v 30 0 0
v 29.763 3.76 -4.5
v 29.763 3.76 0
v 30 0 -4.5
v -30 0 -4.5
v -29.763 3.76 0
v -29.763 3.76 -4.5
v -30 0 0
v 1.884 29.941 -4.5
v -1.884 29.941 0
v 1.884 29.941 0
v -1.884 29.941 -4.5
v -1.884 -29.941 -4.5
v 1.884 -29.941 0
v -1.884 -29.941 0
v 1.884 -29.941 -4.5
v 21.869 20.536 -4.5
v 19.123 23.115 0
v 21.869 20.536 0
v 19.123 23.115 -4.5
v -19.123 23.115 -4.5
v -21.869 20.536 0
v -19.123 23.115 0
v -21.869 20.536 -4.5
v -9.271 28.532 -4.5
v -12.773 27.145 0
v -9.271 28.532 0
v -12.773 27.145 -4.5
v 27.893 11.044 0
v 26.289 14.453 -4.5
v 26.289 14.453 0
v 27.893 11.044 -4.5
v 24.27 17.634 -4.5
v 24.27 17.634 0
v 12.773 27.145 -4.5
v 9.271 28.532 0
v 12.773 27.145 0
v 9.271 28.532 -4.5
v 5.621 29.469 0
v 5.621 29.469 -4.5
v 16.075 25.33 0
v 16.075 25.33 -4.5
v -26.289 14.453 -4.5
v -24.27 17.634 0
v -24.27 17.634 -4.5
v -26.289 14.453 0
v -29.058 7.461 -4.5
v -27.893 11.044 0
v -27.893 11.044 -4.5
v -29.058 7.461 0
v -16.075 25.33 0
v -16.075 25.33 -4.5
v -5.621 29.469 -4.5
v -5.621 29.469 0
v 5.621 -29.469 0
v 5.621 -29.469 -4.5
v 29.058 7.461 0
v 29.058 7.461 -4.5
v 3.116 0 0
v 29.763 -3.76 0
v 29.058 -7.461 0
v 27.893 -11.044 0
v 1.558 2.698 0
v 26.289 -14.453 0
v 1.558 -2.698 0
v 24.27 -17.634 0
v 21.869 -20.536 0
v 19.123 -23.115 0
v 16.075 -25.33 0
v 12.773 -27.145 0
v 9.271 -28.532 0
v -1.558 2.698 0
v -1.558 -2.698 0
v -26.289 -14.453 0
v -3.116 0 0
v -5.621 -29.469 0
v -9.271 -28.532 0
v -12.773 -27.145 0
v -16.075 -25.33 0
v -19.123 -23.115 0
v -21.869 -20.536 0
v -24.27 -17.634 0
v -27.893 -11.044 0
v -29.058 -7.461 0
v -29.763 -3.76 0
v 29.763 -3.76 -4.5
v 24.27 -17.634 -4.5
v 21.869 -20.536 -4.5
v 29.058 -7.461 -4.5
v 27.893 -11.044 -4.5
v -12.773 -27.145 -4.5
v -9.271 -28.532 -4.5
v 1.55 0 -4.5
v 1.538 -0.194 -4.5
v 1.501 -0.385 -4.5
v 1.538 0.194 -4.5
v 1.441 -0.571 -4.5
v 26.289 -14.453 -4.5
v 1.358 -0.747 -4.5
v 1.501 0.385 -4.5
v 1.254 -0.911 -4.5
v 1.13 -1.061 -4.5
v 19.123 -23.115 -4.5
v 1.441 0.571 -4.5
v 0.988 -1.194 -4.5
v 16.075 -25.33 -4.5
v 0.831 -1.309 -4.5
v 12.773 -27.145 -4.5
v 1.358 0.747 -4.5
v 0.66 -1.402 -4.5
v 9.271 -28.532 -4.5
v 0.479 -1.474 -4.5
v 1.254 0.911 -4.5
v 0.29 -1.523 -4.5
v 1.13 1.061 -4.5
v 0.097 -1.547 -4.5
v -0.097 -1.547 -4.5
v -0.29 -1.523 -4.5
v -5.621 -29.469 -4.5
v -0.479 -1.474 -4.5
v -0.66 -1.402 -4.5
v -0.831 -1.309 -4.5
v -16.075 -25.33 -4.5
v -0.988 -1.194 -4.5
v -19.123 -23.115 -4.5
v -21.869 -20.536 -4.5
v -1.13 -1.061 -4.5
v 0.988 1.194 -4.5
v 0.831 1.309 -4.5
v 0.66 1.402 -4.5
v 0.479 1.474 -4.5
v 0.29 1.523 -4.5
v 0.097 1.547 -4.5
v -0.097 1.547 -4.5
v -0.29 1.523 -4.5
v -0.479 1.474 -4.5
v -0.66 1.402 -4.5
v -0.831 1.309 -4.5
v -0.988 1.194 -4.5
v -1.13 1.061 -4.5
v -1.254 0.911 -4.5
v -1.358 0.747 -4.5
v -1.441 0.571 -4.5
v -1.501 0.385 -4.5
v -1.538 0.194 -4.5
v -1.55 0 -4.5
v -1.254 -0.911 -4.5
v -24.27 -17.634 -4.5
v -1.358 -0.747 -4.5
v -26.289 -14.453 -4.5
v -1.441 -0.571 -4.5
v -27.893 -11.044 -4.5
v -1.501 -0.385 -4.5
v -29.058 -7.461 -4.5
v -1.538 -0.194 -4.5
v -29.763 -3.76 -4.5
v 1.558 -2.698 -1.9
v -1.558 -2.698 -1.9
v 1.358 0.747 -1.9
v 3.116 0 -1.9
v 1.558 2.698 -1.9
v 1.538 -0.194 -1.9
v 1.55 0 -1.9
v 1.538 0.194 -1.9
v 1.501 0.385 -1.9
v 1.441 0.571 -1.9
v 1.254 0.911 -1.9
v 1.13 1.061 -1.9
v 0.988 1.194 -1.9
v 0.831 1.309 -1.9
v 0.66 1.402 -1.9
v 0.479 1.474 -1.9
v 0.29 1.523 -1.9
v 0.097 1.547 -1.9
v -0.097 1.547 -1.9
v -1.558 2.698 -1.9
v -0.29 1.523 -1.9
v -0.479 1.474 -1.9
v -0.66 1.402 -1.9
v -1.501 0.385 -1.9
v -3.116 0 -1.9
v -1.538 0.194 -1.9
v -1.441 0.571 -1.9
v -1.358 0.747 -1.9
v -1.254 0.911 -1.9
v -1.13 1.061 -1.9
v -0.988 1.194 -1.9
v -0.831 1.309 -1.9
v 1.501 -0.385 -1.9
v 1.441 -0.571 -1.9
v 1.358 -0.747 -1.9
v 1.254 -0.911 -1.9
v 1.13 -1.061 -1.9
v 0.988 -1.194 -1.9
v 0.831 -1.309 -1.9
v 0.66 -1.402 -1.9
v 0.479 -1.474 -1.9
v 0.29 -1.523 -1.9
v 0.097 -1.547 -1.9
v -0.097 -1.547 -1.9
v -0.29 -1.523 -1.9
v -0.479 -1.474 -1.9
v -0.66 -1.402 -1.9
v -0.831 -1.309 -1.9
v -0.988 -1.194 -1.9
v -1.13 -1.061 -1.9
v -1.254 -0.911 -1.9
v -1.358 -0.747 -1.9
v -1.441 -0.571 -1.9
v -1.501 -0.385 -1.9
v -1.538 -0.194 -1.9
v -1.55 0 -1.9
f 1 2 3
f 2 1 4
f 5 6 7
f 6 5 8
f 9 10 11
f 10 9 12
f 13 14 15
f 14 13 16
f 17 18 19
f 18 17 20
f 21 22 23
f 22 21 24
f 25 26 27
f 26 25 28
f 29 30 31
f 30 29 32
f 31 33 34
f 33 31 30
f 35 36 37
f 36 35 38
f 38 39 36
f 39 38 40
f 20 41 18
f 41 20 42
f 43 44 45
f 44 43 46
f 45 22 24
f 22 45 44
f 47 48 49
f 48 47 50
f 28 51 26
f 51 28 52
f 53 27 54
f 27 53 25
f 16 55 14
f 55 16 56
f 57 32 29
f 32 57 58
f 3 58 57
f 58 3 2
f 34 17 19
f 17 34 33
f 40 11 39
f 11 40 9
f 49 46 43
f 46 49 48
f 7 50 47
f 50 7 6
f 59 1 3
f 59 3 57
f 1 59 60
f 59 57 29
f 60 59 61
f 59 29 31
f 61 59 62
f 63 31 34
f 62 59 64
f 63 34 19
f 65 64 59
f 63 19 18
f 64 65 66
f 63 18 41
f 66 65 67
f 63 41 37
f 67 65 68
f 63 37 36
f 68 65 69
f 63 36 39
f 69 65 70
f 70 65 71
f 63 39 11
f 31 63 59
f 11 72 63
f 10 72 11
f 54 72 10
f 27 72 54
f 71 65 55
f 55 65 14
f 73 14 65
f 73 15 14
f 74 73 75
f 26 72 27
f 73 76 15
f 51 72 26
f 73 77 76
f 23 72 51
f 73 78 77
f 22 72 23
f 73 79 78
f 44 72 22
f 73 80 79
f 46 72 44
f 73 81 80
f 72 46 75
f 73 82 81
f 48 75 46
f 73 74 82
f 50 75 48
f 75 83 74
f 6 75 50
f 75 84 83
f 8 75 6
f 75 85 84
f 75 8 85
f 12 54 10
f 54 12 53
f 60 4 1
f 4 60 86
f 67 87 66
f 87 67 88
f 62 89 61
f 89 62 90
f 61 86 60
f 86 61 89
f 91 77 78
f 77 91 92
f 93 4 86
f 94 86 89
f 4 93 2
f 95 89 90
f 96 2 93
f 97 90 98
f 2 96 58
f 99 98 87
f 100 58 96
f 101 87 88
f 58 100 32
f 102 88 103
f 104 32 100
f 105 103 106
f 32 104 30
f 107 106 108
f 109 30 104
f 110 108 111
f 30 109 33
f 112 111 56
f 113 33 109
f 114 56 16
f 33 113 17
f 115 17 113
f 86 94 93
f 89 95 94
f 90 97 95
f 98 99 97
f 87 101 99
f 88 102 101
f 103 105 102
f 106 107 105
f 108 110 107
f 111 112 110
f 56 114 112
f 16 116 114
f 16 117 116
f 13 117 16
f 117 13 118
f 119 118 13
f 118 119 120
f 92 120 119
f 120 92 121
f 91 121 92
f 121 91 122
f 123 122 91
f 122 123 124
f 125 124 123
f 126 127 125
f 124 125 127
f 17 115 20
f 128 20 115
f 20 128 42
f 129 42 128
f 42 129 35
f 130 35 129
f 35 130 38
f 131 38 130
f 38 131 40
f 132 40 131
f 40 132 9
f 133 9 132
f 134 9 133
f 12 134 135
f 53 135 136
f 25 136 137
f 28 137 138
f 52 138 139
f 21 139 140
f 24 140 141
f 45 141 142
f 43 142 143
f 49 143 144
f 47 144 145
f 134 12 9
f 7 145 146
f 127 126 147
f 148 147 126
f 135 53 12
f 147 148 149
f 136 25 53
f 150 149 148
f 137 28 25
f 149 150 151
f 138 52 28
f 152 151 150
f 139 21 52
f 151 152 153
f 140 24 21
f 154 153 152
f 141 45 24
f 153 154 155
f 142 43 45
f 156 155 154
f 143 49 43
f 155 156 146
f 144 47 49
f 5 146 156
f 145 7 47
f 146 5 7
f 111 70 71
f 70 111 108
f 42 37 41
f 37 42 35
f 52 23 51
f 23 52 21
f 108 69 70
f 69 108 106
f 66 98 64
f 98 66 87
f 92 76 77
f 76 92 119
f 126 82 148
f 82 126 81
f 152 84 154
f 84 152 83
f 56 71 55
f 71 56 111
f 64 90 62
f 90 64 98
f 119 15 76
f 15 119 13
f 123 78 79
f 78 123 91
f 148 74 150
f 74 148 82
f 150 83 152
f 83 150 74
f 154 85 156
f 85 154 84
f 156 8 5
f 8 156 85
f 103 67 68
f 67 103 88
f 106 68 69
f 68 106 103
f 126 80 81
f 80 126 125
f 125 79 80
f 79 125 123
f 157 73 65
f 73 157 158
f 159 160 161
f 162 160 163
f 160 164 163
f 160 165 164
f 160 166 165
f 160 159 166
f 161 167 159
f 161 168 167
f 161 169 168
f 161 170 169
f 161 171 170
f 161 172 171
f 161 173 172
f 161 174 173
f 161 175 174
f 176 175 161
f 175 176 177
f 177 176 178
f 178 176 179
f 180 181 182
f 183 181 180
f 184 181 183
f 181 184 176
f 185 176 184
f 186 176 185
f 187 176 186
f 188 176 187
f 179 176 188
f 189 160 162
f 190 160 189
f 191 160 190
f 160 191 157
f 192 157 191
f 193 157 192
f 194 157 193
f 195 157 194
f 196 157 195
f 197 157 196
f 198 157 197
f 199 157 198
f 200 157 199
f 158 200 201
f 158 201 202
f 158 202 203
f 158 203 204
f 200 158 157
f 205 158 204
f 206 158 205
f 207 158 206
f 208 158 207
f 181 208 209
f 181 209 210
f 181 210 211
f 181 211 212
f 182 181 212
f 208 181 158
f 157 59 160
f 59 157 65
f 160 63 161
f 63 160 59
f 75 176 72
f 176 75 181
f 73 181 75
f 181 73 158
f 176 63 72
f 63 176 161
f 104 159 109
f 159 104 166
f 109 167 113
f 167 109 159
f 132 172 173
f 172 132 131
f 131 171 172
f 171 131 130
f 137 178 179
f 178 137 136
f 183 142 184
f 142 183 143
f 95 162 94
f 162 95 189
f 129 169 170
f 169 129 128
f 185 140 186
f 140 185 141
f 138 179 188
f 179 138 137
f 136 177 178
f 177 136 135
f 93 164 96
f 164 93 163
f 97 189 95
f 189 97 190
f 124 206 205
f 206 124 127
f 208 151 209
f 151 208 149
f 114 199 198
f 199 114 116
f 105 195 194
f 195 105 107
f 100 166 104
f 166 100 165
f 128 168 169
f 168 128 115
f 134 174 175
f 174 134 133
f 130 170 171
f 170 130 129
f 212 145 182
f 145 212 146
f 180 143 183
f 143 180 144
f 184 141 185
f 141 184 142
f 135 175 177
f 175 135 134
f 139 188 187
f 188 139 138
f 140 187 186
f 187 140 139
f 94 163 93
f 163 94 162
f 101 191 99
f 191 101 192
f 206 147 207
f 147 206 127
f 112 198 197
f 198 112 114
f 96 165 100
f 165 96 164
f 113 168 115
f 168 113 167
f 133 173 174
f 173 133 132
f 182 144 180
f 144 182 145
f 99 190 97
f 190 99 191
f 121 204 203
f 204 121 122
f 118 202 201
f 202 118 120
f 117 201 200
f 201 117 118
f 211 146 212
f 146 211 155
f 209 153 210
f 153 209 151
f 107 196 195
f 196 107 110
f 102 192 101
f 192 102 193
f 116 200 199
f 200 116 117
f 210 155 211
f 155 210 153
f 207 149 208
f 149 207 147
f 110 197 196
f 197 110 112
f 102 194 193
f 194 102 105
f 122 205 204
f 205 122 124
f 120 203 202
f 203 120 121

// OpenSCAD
$fn = 50;


difference() {
	union() {
		translate(v = [0, 0, -4.5000000000]) {
			cylinder(h = 4.5000000000, r = 30.0000000000);
		}
		translate(v = [0, 0, -3.0000000000]) {
			cylinder(h = 3, r = 2.8750000000);
		}
	}
	union() {
		translate(v = [0, 0, 0]) {
			rotate(a = [0, 0, 0]) {
				difference() {
					union() {
						translate(v = [0, 0, -1.9000000000]) {
							linear_extrude(height = 1.9000000000) {
								polygon(points = [[3.1158000000, 0.0000000000], [1.5579000000, 2.6983619531], [-1.5579000000, 2.6983619531], [-3.1158000000, 0.0000000000], [-1.5579000000, -2.6983619531], [1.5579000000, -2.6983619531]]);
							}
						}
					}
					union();
				}
			}
		}
		#translate(v = [0, 0, -100.0000000000]) {
			cylinder(h = 200, r = 1.5500000000);
		}
	}
}
